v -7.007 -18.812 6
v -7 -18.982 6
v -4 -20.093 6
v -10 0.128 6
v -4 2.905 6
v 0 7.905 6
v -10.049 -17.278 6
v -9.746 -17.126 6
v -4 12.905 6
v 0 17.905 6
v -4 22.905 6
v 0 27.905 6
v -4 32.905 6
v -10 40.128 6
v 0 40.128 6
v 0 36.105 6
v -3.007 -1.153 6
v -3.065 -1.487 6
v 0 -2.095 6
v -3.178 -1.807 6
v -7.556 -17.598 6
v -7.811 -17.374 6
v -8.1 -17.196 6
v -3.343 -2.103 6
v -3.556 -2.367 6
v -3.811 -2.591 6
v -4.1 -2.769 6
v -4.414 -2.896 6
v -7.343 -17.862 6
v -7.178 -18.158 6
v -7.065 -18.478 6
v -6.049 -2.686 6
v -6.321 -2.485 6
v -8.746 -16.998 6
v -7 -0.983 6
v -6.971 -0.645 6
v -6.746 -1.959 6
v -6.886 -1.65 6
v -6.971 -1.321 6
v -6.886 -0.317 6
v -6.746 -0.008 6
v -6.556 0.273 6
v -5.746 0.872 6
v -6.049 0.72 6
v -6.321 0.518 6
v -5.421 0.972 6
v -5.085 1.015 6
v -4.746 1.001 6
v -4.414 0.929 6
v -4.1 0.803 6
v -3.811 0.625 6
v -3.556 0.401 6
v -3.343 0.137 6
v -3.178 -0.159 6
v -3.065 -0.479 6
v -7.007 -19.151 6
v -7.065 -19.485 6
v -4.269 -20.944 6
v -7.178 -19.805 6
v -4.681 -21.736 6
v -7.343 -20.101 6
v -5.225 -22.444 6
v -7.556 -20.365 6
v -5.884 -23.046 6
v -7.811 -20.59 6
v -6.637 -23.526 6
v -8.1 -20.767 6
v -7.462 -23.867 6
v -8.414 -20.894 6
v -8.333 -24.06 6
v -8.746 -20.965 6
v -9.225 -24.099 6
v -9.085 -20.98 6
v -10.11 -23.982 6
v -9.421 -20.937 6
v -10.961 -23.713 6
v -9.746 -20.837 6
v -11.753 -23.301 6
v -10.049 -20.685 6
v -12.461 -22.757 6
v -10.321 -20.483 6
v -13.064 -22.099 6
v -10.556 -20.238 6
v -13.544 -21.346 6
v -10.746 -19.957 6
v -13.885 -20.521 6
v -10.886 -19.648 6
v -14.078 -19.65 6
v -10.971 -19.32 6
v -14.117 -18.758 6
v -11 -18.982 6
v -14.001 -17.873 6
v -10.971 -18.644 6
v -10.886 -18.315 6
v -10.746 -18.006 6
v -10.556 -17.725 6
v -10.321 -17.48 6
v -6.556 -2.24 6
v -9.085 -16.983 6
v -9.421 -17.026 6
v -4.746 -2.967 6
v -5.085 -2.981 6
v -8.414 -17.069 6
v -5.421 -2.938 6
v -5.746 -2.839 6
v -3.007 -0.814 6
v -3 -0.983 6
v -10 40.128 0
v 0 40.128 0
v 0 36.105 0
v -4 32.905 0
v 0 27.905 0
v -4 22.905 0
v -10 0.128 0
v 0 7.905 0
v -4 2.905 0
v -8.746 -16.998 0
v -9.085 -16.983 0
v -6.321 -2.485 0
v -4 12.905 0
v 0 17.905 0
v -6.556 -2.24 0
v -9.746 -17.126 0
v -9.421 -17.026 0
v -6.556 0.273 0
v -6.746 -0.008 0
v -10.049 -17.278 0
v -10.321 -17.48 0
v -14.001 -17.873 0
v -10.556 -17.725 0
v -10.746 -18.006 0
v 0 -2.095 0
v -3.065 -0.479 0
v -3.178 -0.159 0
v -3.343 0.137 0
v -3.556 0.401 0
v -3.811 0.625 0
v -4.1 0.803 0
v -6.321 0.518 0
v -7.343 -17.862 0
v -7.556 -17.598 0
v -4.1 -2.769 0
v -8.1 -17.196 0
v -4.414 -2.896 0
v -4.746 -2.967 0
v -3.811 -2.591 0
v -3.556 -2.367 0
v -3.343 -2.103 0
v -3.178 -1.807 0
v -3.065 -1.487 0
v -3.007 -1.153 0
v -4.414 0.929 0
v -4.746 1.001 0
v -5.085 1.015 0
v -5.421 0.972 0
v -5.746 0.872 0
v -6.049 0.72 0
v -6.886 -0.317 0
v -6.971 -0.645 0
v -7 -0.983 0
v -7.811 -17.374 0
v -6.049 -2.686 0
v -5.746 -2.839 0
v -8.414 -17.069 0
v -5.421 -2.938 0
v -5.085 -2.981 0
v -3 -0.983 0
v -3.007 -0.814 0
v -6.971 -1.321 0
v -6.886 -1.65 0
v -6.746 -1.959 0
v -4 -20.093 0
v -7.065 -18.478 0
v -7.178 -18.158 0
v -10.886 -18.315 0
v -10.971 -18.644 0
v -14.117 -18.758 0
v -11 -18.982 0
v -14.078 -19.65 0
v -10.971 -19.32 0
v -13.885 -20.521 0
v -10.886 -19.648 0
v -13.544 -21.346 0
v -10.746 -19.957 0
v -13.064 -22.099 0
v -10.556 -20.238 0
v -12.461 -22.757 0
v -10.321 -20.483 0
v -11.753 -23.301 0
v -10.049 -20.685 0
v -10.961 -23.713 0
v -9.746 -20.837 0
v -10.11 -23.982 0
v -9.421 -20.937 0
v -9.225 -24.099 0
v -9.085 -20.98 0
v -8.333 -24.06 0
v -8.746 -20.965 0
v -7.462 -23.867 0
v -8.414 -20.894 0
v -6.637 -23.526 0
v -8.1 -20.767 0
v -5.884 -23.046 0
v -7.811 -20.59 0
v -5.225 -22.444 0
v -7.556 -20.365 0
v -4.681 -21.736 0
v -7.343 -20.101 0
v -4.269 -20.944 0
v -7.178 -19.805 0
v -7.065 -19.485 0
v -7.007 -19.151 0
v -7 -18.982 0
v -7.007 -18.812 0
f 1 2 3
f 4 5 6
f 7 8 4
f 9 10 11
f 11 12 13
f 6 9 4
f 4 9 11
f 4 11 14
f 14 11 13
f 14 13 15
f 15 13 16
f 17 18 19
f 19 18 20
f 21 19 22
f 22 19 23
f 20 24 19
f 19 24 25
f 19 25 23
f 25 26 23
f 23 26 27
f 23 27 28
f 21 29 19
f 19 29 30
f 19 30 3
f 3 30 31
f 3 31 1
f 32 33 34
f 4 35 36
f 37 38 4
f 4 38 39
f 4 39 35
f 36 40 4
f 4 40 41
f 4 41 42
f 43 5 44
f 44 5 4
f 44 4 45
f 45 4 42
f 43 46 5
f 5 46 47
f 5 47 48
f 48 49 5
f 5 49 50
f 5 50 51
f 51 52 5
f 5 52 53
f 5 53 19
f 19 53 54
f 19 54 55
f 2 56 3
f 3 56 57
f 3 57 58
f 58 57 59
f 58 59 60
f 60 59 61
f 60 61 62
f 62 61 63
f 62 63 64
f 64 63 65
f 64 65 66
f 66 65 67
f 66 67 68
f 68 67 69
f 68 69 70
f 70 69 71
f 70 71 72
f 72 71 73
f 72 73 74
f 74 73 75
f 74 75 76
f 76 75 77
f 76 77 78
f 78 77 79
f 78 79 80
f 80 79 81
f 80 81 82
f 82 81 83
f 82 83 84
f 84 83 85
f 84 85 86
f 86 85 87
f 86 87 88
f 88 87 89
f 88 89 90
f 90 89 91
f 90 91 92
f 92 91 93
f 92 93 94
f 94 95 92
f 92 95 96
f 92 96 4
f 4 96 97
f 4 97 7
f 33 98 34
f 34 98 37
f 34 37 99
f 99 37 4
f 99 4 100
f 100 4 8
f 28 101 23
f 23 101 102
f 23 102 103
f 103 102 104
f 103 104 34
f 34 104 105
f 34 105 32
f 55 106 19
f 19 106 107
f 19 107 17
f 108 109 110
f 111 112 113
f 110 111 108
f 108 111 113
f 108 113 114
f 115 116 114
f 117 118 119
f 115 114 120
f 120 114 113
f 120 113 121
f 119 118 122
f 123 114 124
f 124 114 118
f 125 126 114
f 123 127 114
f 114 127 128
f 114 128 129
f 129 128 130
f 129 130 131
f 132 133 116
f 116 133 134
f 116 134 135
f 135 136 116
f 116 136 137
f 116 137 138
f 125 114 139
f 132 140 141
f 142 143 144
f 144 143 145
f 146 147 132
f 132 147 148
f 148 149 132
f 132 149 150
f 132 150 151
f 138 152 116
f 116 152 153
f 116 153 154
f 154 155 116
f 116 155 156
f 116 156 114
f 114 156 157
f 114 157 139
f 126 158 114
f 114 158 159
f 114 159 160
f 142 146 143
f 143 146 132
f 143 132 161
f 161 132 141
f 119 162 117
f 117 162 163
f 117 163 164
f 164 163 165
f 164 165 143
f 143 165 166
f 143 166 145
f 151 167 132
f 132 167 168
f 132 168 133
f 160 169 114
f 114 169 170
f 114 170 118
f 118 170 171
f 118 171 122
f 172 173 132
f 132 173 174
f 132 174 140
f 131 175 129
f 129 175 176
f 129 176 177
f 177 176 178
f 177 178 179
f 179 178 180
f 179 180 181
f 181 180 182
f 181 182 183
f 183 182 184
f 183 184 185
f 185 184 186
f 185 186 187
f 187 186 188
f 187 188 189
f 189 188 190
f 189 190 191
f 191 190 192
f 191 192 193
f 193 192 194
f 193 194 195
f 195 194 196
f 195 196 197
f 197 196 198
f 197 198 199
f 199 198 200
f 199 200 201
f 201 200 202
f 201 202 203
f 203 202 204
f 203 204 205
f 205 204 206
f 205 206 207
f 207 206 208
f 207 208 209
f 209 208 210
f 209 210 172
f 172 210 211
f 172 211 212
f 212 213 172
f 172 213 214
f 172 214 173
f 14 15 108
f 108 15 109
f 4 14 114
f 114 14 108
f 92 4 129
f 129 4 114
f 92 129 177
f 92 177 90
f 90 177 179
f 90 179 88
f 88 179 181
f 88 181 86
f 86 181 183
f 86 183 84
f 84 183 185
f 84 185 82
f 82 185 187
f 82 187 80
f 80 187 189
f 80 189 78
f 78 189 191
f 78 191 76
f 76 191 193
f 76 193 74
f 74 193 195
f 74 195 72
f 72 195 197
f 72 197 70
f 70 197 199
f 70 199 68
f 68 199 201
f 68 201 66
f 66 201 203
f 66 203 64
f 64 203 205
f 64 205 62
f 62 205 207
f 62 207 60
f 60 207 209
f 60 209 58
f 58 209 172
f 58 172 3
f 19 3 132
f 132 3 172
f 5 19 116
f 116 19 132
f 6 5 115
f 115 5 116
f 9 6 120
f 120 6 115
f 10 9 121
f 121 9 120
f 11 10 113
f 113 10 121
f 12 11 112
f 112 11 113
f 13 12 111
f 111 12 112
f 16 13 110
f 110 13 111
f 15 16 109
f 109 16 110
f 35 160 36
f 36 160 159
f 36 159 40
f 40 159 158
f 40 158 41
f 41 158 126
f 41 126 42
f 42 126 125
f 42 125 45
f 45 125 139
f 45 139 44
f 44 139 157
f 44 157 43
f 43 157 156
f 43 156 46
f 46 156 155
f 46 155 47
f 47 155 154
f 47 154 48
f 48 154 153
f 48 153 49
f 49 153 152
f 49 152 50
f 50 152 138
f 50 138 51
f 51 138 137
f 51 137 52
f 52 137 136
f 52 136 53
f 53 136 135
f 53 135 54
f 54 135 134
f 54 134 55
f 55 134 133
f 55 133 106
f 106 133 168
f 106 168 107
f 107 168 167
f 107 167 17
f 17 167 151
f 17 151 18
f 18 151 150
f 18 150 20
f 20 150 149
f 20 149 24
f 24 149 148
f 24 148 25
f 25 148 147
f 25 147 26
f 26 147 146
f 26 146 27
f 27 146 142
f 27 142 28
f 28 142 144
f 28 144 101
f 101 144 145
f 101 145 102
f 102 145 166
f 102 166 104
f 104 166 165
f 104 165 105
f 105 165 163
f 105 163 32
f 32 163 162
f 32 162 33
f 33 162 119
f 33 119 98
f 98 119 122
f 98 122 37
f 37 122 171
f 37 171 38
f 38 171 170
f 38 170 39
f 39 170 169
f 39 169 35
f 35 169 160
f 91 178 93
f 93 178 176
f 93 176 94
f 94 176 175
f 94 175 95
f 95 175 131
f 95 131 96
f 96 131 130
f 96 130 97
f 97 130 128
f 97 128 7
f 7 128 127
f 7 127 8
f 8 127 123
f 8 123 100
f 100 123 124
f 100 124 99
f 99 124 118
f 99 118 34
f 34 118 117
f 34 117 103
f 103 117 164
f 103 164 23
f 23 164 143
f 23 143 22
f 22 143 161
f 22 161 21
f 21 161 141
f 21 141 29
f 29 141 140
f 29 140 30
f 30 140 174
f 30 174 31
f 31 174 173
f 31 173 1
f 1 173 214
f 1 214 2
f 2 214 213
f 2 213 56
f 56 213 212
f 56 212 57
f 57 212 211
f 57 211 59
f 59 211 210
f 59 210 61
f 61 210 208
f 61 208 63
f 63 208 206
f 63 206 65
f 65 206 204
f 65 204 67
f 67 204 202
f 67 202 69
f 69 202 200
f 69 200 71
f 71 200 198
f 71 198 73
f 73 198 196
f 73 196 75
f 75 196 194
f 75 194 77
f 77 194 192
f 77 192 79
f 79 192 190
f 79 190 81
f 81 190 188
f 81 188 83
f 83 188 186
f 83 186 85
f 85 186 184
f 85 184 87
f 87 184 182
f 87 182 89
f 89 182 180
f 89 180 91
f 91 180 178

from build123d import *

# Parameters (mm, degrees)
SKETCH1_R           = 2
BOSS_EXTRUDE1_DEPTH = 6


with BuildPart() as part:
    # Sketch1 → Boss-Extrude1 (new body)
    with BuildSketch(Plane.XY):
        with BuildLine():
            Line((-10, 40.127930694), (-10, 0.127930694))
            Line((-10, 0.127930694), (-14.000572229, -17.872875451))
            ThreePointArc((-14.000572229, -17.872875451), (-10.109933276, -23.981807176), (-4, -20.092741267))
            Line((-4, -20.092741267), (0, -2.0945099))
            Line((0, -2.0945099), (-4, 2.9054901))
            Line((-4, 2.9054901), (0, 7.9054901))
            Line((0, 7.9054901), (-4, 12.9054901))
            Line((-4, 12.9054901), (0, 17.9054901))
            Line((0, 17.9054901), (-4, 22.9054901))
            Line((-4, 22.9054901), (0, 27.9054901))
            Line((0, 27.9054901), (-4, 32.9054901))
            Line((-4, 32.9054901), (0, 36.1054901))
            Line((0, 36.1054901), (0, 40.127930694))
            Line((0, 40.127930694), (-10, 40.127930694))
        make_face()
        with Locations((-5, -0.983289603)):
            Circle(SKETCH1_R, mode=Mode.SUBTRACT)
        with Locations((-9.000000331, -18.981520896)):
            Circle(SKETCH1_R, mode=Mode.SUBTRACT)
    extrude(amount=BOSS_EXTRUDE1_DEPTH)


solid = part.part
